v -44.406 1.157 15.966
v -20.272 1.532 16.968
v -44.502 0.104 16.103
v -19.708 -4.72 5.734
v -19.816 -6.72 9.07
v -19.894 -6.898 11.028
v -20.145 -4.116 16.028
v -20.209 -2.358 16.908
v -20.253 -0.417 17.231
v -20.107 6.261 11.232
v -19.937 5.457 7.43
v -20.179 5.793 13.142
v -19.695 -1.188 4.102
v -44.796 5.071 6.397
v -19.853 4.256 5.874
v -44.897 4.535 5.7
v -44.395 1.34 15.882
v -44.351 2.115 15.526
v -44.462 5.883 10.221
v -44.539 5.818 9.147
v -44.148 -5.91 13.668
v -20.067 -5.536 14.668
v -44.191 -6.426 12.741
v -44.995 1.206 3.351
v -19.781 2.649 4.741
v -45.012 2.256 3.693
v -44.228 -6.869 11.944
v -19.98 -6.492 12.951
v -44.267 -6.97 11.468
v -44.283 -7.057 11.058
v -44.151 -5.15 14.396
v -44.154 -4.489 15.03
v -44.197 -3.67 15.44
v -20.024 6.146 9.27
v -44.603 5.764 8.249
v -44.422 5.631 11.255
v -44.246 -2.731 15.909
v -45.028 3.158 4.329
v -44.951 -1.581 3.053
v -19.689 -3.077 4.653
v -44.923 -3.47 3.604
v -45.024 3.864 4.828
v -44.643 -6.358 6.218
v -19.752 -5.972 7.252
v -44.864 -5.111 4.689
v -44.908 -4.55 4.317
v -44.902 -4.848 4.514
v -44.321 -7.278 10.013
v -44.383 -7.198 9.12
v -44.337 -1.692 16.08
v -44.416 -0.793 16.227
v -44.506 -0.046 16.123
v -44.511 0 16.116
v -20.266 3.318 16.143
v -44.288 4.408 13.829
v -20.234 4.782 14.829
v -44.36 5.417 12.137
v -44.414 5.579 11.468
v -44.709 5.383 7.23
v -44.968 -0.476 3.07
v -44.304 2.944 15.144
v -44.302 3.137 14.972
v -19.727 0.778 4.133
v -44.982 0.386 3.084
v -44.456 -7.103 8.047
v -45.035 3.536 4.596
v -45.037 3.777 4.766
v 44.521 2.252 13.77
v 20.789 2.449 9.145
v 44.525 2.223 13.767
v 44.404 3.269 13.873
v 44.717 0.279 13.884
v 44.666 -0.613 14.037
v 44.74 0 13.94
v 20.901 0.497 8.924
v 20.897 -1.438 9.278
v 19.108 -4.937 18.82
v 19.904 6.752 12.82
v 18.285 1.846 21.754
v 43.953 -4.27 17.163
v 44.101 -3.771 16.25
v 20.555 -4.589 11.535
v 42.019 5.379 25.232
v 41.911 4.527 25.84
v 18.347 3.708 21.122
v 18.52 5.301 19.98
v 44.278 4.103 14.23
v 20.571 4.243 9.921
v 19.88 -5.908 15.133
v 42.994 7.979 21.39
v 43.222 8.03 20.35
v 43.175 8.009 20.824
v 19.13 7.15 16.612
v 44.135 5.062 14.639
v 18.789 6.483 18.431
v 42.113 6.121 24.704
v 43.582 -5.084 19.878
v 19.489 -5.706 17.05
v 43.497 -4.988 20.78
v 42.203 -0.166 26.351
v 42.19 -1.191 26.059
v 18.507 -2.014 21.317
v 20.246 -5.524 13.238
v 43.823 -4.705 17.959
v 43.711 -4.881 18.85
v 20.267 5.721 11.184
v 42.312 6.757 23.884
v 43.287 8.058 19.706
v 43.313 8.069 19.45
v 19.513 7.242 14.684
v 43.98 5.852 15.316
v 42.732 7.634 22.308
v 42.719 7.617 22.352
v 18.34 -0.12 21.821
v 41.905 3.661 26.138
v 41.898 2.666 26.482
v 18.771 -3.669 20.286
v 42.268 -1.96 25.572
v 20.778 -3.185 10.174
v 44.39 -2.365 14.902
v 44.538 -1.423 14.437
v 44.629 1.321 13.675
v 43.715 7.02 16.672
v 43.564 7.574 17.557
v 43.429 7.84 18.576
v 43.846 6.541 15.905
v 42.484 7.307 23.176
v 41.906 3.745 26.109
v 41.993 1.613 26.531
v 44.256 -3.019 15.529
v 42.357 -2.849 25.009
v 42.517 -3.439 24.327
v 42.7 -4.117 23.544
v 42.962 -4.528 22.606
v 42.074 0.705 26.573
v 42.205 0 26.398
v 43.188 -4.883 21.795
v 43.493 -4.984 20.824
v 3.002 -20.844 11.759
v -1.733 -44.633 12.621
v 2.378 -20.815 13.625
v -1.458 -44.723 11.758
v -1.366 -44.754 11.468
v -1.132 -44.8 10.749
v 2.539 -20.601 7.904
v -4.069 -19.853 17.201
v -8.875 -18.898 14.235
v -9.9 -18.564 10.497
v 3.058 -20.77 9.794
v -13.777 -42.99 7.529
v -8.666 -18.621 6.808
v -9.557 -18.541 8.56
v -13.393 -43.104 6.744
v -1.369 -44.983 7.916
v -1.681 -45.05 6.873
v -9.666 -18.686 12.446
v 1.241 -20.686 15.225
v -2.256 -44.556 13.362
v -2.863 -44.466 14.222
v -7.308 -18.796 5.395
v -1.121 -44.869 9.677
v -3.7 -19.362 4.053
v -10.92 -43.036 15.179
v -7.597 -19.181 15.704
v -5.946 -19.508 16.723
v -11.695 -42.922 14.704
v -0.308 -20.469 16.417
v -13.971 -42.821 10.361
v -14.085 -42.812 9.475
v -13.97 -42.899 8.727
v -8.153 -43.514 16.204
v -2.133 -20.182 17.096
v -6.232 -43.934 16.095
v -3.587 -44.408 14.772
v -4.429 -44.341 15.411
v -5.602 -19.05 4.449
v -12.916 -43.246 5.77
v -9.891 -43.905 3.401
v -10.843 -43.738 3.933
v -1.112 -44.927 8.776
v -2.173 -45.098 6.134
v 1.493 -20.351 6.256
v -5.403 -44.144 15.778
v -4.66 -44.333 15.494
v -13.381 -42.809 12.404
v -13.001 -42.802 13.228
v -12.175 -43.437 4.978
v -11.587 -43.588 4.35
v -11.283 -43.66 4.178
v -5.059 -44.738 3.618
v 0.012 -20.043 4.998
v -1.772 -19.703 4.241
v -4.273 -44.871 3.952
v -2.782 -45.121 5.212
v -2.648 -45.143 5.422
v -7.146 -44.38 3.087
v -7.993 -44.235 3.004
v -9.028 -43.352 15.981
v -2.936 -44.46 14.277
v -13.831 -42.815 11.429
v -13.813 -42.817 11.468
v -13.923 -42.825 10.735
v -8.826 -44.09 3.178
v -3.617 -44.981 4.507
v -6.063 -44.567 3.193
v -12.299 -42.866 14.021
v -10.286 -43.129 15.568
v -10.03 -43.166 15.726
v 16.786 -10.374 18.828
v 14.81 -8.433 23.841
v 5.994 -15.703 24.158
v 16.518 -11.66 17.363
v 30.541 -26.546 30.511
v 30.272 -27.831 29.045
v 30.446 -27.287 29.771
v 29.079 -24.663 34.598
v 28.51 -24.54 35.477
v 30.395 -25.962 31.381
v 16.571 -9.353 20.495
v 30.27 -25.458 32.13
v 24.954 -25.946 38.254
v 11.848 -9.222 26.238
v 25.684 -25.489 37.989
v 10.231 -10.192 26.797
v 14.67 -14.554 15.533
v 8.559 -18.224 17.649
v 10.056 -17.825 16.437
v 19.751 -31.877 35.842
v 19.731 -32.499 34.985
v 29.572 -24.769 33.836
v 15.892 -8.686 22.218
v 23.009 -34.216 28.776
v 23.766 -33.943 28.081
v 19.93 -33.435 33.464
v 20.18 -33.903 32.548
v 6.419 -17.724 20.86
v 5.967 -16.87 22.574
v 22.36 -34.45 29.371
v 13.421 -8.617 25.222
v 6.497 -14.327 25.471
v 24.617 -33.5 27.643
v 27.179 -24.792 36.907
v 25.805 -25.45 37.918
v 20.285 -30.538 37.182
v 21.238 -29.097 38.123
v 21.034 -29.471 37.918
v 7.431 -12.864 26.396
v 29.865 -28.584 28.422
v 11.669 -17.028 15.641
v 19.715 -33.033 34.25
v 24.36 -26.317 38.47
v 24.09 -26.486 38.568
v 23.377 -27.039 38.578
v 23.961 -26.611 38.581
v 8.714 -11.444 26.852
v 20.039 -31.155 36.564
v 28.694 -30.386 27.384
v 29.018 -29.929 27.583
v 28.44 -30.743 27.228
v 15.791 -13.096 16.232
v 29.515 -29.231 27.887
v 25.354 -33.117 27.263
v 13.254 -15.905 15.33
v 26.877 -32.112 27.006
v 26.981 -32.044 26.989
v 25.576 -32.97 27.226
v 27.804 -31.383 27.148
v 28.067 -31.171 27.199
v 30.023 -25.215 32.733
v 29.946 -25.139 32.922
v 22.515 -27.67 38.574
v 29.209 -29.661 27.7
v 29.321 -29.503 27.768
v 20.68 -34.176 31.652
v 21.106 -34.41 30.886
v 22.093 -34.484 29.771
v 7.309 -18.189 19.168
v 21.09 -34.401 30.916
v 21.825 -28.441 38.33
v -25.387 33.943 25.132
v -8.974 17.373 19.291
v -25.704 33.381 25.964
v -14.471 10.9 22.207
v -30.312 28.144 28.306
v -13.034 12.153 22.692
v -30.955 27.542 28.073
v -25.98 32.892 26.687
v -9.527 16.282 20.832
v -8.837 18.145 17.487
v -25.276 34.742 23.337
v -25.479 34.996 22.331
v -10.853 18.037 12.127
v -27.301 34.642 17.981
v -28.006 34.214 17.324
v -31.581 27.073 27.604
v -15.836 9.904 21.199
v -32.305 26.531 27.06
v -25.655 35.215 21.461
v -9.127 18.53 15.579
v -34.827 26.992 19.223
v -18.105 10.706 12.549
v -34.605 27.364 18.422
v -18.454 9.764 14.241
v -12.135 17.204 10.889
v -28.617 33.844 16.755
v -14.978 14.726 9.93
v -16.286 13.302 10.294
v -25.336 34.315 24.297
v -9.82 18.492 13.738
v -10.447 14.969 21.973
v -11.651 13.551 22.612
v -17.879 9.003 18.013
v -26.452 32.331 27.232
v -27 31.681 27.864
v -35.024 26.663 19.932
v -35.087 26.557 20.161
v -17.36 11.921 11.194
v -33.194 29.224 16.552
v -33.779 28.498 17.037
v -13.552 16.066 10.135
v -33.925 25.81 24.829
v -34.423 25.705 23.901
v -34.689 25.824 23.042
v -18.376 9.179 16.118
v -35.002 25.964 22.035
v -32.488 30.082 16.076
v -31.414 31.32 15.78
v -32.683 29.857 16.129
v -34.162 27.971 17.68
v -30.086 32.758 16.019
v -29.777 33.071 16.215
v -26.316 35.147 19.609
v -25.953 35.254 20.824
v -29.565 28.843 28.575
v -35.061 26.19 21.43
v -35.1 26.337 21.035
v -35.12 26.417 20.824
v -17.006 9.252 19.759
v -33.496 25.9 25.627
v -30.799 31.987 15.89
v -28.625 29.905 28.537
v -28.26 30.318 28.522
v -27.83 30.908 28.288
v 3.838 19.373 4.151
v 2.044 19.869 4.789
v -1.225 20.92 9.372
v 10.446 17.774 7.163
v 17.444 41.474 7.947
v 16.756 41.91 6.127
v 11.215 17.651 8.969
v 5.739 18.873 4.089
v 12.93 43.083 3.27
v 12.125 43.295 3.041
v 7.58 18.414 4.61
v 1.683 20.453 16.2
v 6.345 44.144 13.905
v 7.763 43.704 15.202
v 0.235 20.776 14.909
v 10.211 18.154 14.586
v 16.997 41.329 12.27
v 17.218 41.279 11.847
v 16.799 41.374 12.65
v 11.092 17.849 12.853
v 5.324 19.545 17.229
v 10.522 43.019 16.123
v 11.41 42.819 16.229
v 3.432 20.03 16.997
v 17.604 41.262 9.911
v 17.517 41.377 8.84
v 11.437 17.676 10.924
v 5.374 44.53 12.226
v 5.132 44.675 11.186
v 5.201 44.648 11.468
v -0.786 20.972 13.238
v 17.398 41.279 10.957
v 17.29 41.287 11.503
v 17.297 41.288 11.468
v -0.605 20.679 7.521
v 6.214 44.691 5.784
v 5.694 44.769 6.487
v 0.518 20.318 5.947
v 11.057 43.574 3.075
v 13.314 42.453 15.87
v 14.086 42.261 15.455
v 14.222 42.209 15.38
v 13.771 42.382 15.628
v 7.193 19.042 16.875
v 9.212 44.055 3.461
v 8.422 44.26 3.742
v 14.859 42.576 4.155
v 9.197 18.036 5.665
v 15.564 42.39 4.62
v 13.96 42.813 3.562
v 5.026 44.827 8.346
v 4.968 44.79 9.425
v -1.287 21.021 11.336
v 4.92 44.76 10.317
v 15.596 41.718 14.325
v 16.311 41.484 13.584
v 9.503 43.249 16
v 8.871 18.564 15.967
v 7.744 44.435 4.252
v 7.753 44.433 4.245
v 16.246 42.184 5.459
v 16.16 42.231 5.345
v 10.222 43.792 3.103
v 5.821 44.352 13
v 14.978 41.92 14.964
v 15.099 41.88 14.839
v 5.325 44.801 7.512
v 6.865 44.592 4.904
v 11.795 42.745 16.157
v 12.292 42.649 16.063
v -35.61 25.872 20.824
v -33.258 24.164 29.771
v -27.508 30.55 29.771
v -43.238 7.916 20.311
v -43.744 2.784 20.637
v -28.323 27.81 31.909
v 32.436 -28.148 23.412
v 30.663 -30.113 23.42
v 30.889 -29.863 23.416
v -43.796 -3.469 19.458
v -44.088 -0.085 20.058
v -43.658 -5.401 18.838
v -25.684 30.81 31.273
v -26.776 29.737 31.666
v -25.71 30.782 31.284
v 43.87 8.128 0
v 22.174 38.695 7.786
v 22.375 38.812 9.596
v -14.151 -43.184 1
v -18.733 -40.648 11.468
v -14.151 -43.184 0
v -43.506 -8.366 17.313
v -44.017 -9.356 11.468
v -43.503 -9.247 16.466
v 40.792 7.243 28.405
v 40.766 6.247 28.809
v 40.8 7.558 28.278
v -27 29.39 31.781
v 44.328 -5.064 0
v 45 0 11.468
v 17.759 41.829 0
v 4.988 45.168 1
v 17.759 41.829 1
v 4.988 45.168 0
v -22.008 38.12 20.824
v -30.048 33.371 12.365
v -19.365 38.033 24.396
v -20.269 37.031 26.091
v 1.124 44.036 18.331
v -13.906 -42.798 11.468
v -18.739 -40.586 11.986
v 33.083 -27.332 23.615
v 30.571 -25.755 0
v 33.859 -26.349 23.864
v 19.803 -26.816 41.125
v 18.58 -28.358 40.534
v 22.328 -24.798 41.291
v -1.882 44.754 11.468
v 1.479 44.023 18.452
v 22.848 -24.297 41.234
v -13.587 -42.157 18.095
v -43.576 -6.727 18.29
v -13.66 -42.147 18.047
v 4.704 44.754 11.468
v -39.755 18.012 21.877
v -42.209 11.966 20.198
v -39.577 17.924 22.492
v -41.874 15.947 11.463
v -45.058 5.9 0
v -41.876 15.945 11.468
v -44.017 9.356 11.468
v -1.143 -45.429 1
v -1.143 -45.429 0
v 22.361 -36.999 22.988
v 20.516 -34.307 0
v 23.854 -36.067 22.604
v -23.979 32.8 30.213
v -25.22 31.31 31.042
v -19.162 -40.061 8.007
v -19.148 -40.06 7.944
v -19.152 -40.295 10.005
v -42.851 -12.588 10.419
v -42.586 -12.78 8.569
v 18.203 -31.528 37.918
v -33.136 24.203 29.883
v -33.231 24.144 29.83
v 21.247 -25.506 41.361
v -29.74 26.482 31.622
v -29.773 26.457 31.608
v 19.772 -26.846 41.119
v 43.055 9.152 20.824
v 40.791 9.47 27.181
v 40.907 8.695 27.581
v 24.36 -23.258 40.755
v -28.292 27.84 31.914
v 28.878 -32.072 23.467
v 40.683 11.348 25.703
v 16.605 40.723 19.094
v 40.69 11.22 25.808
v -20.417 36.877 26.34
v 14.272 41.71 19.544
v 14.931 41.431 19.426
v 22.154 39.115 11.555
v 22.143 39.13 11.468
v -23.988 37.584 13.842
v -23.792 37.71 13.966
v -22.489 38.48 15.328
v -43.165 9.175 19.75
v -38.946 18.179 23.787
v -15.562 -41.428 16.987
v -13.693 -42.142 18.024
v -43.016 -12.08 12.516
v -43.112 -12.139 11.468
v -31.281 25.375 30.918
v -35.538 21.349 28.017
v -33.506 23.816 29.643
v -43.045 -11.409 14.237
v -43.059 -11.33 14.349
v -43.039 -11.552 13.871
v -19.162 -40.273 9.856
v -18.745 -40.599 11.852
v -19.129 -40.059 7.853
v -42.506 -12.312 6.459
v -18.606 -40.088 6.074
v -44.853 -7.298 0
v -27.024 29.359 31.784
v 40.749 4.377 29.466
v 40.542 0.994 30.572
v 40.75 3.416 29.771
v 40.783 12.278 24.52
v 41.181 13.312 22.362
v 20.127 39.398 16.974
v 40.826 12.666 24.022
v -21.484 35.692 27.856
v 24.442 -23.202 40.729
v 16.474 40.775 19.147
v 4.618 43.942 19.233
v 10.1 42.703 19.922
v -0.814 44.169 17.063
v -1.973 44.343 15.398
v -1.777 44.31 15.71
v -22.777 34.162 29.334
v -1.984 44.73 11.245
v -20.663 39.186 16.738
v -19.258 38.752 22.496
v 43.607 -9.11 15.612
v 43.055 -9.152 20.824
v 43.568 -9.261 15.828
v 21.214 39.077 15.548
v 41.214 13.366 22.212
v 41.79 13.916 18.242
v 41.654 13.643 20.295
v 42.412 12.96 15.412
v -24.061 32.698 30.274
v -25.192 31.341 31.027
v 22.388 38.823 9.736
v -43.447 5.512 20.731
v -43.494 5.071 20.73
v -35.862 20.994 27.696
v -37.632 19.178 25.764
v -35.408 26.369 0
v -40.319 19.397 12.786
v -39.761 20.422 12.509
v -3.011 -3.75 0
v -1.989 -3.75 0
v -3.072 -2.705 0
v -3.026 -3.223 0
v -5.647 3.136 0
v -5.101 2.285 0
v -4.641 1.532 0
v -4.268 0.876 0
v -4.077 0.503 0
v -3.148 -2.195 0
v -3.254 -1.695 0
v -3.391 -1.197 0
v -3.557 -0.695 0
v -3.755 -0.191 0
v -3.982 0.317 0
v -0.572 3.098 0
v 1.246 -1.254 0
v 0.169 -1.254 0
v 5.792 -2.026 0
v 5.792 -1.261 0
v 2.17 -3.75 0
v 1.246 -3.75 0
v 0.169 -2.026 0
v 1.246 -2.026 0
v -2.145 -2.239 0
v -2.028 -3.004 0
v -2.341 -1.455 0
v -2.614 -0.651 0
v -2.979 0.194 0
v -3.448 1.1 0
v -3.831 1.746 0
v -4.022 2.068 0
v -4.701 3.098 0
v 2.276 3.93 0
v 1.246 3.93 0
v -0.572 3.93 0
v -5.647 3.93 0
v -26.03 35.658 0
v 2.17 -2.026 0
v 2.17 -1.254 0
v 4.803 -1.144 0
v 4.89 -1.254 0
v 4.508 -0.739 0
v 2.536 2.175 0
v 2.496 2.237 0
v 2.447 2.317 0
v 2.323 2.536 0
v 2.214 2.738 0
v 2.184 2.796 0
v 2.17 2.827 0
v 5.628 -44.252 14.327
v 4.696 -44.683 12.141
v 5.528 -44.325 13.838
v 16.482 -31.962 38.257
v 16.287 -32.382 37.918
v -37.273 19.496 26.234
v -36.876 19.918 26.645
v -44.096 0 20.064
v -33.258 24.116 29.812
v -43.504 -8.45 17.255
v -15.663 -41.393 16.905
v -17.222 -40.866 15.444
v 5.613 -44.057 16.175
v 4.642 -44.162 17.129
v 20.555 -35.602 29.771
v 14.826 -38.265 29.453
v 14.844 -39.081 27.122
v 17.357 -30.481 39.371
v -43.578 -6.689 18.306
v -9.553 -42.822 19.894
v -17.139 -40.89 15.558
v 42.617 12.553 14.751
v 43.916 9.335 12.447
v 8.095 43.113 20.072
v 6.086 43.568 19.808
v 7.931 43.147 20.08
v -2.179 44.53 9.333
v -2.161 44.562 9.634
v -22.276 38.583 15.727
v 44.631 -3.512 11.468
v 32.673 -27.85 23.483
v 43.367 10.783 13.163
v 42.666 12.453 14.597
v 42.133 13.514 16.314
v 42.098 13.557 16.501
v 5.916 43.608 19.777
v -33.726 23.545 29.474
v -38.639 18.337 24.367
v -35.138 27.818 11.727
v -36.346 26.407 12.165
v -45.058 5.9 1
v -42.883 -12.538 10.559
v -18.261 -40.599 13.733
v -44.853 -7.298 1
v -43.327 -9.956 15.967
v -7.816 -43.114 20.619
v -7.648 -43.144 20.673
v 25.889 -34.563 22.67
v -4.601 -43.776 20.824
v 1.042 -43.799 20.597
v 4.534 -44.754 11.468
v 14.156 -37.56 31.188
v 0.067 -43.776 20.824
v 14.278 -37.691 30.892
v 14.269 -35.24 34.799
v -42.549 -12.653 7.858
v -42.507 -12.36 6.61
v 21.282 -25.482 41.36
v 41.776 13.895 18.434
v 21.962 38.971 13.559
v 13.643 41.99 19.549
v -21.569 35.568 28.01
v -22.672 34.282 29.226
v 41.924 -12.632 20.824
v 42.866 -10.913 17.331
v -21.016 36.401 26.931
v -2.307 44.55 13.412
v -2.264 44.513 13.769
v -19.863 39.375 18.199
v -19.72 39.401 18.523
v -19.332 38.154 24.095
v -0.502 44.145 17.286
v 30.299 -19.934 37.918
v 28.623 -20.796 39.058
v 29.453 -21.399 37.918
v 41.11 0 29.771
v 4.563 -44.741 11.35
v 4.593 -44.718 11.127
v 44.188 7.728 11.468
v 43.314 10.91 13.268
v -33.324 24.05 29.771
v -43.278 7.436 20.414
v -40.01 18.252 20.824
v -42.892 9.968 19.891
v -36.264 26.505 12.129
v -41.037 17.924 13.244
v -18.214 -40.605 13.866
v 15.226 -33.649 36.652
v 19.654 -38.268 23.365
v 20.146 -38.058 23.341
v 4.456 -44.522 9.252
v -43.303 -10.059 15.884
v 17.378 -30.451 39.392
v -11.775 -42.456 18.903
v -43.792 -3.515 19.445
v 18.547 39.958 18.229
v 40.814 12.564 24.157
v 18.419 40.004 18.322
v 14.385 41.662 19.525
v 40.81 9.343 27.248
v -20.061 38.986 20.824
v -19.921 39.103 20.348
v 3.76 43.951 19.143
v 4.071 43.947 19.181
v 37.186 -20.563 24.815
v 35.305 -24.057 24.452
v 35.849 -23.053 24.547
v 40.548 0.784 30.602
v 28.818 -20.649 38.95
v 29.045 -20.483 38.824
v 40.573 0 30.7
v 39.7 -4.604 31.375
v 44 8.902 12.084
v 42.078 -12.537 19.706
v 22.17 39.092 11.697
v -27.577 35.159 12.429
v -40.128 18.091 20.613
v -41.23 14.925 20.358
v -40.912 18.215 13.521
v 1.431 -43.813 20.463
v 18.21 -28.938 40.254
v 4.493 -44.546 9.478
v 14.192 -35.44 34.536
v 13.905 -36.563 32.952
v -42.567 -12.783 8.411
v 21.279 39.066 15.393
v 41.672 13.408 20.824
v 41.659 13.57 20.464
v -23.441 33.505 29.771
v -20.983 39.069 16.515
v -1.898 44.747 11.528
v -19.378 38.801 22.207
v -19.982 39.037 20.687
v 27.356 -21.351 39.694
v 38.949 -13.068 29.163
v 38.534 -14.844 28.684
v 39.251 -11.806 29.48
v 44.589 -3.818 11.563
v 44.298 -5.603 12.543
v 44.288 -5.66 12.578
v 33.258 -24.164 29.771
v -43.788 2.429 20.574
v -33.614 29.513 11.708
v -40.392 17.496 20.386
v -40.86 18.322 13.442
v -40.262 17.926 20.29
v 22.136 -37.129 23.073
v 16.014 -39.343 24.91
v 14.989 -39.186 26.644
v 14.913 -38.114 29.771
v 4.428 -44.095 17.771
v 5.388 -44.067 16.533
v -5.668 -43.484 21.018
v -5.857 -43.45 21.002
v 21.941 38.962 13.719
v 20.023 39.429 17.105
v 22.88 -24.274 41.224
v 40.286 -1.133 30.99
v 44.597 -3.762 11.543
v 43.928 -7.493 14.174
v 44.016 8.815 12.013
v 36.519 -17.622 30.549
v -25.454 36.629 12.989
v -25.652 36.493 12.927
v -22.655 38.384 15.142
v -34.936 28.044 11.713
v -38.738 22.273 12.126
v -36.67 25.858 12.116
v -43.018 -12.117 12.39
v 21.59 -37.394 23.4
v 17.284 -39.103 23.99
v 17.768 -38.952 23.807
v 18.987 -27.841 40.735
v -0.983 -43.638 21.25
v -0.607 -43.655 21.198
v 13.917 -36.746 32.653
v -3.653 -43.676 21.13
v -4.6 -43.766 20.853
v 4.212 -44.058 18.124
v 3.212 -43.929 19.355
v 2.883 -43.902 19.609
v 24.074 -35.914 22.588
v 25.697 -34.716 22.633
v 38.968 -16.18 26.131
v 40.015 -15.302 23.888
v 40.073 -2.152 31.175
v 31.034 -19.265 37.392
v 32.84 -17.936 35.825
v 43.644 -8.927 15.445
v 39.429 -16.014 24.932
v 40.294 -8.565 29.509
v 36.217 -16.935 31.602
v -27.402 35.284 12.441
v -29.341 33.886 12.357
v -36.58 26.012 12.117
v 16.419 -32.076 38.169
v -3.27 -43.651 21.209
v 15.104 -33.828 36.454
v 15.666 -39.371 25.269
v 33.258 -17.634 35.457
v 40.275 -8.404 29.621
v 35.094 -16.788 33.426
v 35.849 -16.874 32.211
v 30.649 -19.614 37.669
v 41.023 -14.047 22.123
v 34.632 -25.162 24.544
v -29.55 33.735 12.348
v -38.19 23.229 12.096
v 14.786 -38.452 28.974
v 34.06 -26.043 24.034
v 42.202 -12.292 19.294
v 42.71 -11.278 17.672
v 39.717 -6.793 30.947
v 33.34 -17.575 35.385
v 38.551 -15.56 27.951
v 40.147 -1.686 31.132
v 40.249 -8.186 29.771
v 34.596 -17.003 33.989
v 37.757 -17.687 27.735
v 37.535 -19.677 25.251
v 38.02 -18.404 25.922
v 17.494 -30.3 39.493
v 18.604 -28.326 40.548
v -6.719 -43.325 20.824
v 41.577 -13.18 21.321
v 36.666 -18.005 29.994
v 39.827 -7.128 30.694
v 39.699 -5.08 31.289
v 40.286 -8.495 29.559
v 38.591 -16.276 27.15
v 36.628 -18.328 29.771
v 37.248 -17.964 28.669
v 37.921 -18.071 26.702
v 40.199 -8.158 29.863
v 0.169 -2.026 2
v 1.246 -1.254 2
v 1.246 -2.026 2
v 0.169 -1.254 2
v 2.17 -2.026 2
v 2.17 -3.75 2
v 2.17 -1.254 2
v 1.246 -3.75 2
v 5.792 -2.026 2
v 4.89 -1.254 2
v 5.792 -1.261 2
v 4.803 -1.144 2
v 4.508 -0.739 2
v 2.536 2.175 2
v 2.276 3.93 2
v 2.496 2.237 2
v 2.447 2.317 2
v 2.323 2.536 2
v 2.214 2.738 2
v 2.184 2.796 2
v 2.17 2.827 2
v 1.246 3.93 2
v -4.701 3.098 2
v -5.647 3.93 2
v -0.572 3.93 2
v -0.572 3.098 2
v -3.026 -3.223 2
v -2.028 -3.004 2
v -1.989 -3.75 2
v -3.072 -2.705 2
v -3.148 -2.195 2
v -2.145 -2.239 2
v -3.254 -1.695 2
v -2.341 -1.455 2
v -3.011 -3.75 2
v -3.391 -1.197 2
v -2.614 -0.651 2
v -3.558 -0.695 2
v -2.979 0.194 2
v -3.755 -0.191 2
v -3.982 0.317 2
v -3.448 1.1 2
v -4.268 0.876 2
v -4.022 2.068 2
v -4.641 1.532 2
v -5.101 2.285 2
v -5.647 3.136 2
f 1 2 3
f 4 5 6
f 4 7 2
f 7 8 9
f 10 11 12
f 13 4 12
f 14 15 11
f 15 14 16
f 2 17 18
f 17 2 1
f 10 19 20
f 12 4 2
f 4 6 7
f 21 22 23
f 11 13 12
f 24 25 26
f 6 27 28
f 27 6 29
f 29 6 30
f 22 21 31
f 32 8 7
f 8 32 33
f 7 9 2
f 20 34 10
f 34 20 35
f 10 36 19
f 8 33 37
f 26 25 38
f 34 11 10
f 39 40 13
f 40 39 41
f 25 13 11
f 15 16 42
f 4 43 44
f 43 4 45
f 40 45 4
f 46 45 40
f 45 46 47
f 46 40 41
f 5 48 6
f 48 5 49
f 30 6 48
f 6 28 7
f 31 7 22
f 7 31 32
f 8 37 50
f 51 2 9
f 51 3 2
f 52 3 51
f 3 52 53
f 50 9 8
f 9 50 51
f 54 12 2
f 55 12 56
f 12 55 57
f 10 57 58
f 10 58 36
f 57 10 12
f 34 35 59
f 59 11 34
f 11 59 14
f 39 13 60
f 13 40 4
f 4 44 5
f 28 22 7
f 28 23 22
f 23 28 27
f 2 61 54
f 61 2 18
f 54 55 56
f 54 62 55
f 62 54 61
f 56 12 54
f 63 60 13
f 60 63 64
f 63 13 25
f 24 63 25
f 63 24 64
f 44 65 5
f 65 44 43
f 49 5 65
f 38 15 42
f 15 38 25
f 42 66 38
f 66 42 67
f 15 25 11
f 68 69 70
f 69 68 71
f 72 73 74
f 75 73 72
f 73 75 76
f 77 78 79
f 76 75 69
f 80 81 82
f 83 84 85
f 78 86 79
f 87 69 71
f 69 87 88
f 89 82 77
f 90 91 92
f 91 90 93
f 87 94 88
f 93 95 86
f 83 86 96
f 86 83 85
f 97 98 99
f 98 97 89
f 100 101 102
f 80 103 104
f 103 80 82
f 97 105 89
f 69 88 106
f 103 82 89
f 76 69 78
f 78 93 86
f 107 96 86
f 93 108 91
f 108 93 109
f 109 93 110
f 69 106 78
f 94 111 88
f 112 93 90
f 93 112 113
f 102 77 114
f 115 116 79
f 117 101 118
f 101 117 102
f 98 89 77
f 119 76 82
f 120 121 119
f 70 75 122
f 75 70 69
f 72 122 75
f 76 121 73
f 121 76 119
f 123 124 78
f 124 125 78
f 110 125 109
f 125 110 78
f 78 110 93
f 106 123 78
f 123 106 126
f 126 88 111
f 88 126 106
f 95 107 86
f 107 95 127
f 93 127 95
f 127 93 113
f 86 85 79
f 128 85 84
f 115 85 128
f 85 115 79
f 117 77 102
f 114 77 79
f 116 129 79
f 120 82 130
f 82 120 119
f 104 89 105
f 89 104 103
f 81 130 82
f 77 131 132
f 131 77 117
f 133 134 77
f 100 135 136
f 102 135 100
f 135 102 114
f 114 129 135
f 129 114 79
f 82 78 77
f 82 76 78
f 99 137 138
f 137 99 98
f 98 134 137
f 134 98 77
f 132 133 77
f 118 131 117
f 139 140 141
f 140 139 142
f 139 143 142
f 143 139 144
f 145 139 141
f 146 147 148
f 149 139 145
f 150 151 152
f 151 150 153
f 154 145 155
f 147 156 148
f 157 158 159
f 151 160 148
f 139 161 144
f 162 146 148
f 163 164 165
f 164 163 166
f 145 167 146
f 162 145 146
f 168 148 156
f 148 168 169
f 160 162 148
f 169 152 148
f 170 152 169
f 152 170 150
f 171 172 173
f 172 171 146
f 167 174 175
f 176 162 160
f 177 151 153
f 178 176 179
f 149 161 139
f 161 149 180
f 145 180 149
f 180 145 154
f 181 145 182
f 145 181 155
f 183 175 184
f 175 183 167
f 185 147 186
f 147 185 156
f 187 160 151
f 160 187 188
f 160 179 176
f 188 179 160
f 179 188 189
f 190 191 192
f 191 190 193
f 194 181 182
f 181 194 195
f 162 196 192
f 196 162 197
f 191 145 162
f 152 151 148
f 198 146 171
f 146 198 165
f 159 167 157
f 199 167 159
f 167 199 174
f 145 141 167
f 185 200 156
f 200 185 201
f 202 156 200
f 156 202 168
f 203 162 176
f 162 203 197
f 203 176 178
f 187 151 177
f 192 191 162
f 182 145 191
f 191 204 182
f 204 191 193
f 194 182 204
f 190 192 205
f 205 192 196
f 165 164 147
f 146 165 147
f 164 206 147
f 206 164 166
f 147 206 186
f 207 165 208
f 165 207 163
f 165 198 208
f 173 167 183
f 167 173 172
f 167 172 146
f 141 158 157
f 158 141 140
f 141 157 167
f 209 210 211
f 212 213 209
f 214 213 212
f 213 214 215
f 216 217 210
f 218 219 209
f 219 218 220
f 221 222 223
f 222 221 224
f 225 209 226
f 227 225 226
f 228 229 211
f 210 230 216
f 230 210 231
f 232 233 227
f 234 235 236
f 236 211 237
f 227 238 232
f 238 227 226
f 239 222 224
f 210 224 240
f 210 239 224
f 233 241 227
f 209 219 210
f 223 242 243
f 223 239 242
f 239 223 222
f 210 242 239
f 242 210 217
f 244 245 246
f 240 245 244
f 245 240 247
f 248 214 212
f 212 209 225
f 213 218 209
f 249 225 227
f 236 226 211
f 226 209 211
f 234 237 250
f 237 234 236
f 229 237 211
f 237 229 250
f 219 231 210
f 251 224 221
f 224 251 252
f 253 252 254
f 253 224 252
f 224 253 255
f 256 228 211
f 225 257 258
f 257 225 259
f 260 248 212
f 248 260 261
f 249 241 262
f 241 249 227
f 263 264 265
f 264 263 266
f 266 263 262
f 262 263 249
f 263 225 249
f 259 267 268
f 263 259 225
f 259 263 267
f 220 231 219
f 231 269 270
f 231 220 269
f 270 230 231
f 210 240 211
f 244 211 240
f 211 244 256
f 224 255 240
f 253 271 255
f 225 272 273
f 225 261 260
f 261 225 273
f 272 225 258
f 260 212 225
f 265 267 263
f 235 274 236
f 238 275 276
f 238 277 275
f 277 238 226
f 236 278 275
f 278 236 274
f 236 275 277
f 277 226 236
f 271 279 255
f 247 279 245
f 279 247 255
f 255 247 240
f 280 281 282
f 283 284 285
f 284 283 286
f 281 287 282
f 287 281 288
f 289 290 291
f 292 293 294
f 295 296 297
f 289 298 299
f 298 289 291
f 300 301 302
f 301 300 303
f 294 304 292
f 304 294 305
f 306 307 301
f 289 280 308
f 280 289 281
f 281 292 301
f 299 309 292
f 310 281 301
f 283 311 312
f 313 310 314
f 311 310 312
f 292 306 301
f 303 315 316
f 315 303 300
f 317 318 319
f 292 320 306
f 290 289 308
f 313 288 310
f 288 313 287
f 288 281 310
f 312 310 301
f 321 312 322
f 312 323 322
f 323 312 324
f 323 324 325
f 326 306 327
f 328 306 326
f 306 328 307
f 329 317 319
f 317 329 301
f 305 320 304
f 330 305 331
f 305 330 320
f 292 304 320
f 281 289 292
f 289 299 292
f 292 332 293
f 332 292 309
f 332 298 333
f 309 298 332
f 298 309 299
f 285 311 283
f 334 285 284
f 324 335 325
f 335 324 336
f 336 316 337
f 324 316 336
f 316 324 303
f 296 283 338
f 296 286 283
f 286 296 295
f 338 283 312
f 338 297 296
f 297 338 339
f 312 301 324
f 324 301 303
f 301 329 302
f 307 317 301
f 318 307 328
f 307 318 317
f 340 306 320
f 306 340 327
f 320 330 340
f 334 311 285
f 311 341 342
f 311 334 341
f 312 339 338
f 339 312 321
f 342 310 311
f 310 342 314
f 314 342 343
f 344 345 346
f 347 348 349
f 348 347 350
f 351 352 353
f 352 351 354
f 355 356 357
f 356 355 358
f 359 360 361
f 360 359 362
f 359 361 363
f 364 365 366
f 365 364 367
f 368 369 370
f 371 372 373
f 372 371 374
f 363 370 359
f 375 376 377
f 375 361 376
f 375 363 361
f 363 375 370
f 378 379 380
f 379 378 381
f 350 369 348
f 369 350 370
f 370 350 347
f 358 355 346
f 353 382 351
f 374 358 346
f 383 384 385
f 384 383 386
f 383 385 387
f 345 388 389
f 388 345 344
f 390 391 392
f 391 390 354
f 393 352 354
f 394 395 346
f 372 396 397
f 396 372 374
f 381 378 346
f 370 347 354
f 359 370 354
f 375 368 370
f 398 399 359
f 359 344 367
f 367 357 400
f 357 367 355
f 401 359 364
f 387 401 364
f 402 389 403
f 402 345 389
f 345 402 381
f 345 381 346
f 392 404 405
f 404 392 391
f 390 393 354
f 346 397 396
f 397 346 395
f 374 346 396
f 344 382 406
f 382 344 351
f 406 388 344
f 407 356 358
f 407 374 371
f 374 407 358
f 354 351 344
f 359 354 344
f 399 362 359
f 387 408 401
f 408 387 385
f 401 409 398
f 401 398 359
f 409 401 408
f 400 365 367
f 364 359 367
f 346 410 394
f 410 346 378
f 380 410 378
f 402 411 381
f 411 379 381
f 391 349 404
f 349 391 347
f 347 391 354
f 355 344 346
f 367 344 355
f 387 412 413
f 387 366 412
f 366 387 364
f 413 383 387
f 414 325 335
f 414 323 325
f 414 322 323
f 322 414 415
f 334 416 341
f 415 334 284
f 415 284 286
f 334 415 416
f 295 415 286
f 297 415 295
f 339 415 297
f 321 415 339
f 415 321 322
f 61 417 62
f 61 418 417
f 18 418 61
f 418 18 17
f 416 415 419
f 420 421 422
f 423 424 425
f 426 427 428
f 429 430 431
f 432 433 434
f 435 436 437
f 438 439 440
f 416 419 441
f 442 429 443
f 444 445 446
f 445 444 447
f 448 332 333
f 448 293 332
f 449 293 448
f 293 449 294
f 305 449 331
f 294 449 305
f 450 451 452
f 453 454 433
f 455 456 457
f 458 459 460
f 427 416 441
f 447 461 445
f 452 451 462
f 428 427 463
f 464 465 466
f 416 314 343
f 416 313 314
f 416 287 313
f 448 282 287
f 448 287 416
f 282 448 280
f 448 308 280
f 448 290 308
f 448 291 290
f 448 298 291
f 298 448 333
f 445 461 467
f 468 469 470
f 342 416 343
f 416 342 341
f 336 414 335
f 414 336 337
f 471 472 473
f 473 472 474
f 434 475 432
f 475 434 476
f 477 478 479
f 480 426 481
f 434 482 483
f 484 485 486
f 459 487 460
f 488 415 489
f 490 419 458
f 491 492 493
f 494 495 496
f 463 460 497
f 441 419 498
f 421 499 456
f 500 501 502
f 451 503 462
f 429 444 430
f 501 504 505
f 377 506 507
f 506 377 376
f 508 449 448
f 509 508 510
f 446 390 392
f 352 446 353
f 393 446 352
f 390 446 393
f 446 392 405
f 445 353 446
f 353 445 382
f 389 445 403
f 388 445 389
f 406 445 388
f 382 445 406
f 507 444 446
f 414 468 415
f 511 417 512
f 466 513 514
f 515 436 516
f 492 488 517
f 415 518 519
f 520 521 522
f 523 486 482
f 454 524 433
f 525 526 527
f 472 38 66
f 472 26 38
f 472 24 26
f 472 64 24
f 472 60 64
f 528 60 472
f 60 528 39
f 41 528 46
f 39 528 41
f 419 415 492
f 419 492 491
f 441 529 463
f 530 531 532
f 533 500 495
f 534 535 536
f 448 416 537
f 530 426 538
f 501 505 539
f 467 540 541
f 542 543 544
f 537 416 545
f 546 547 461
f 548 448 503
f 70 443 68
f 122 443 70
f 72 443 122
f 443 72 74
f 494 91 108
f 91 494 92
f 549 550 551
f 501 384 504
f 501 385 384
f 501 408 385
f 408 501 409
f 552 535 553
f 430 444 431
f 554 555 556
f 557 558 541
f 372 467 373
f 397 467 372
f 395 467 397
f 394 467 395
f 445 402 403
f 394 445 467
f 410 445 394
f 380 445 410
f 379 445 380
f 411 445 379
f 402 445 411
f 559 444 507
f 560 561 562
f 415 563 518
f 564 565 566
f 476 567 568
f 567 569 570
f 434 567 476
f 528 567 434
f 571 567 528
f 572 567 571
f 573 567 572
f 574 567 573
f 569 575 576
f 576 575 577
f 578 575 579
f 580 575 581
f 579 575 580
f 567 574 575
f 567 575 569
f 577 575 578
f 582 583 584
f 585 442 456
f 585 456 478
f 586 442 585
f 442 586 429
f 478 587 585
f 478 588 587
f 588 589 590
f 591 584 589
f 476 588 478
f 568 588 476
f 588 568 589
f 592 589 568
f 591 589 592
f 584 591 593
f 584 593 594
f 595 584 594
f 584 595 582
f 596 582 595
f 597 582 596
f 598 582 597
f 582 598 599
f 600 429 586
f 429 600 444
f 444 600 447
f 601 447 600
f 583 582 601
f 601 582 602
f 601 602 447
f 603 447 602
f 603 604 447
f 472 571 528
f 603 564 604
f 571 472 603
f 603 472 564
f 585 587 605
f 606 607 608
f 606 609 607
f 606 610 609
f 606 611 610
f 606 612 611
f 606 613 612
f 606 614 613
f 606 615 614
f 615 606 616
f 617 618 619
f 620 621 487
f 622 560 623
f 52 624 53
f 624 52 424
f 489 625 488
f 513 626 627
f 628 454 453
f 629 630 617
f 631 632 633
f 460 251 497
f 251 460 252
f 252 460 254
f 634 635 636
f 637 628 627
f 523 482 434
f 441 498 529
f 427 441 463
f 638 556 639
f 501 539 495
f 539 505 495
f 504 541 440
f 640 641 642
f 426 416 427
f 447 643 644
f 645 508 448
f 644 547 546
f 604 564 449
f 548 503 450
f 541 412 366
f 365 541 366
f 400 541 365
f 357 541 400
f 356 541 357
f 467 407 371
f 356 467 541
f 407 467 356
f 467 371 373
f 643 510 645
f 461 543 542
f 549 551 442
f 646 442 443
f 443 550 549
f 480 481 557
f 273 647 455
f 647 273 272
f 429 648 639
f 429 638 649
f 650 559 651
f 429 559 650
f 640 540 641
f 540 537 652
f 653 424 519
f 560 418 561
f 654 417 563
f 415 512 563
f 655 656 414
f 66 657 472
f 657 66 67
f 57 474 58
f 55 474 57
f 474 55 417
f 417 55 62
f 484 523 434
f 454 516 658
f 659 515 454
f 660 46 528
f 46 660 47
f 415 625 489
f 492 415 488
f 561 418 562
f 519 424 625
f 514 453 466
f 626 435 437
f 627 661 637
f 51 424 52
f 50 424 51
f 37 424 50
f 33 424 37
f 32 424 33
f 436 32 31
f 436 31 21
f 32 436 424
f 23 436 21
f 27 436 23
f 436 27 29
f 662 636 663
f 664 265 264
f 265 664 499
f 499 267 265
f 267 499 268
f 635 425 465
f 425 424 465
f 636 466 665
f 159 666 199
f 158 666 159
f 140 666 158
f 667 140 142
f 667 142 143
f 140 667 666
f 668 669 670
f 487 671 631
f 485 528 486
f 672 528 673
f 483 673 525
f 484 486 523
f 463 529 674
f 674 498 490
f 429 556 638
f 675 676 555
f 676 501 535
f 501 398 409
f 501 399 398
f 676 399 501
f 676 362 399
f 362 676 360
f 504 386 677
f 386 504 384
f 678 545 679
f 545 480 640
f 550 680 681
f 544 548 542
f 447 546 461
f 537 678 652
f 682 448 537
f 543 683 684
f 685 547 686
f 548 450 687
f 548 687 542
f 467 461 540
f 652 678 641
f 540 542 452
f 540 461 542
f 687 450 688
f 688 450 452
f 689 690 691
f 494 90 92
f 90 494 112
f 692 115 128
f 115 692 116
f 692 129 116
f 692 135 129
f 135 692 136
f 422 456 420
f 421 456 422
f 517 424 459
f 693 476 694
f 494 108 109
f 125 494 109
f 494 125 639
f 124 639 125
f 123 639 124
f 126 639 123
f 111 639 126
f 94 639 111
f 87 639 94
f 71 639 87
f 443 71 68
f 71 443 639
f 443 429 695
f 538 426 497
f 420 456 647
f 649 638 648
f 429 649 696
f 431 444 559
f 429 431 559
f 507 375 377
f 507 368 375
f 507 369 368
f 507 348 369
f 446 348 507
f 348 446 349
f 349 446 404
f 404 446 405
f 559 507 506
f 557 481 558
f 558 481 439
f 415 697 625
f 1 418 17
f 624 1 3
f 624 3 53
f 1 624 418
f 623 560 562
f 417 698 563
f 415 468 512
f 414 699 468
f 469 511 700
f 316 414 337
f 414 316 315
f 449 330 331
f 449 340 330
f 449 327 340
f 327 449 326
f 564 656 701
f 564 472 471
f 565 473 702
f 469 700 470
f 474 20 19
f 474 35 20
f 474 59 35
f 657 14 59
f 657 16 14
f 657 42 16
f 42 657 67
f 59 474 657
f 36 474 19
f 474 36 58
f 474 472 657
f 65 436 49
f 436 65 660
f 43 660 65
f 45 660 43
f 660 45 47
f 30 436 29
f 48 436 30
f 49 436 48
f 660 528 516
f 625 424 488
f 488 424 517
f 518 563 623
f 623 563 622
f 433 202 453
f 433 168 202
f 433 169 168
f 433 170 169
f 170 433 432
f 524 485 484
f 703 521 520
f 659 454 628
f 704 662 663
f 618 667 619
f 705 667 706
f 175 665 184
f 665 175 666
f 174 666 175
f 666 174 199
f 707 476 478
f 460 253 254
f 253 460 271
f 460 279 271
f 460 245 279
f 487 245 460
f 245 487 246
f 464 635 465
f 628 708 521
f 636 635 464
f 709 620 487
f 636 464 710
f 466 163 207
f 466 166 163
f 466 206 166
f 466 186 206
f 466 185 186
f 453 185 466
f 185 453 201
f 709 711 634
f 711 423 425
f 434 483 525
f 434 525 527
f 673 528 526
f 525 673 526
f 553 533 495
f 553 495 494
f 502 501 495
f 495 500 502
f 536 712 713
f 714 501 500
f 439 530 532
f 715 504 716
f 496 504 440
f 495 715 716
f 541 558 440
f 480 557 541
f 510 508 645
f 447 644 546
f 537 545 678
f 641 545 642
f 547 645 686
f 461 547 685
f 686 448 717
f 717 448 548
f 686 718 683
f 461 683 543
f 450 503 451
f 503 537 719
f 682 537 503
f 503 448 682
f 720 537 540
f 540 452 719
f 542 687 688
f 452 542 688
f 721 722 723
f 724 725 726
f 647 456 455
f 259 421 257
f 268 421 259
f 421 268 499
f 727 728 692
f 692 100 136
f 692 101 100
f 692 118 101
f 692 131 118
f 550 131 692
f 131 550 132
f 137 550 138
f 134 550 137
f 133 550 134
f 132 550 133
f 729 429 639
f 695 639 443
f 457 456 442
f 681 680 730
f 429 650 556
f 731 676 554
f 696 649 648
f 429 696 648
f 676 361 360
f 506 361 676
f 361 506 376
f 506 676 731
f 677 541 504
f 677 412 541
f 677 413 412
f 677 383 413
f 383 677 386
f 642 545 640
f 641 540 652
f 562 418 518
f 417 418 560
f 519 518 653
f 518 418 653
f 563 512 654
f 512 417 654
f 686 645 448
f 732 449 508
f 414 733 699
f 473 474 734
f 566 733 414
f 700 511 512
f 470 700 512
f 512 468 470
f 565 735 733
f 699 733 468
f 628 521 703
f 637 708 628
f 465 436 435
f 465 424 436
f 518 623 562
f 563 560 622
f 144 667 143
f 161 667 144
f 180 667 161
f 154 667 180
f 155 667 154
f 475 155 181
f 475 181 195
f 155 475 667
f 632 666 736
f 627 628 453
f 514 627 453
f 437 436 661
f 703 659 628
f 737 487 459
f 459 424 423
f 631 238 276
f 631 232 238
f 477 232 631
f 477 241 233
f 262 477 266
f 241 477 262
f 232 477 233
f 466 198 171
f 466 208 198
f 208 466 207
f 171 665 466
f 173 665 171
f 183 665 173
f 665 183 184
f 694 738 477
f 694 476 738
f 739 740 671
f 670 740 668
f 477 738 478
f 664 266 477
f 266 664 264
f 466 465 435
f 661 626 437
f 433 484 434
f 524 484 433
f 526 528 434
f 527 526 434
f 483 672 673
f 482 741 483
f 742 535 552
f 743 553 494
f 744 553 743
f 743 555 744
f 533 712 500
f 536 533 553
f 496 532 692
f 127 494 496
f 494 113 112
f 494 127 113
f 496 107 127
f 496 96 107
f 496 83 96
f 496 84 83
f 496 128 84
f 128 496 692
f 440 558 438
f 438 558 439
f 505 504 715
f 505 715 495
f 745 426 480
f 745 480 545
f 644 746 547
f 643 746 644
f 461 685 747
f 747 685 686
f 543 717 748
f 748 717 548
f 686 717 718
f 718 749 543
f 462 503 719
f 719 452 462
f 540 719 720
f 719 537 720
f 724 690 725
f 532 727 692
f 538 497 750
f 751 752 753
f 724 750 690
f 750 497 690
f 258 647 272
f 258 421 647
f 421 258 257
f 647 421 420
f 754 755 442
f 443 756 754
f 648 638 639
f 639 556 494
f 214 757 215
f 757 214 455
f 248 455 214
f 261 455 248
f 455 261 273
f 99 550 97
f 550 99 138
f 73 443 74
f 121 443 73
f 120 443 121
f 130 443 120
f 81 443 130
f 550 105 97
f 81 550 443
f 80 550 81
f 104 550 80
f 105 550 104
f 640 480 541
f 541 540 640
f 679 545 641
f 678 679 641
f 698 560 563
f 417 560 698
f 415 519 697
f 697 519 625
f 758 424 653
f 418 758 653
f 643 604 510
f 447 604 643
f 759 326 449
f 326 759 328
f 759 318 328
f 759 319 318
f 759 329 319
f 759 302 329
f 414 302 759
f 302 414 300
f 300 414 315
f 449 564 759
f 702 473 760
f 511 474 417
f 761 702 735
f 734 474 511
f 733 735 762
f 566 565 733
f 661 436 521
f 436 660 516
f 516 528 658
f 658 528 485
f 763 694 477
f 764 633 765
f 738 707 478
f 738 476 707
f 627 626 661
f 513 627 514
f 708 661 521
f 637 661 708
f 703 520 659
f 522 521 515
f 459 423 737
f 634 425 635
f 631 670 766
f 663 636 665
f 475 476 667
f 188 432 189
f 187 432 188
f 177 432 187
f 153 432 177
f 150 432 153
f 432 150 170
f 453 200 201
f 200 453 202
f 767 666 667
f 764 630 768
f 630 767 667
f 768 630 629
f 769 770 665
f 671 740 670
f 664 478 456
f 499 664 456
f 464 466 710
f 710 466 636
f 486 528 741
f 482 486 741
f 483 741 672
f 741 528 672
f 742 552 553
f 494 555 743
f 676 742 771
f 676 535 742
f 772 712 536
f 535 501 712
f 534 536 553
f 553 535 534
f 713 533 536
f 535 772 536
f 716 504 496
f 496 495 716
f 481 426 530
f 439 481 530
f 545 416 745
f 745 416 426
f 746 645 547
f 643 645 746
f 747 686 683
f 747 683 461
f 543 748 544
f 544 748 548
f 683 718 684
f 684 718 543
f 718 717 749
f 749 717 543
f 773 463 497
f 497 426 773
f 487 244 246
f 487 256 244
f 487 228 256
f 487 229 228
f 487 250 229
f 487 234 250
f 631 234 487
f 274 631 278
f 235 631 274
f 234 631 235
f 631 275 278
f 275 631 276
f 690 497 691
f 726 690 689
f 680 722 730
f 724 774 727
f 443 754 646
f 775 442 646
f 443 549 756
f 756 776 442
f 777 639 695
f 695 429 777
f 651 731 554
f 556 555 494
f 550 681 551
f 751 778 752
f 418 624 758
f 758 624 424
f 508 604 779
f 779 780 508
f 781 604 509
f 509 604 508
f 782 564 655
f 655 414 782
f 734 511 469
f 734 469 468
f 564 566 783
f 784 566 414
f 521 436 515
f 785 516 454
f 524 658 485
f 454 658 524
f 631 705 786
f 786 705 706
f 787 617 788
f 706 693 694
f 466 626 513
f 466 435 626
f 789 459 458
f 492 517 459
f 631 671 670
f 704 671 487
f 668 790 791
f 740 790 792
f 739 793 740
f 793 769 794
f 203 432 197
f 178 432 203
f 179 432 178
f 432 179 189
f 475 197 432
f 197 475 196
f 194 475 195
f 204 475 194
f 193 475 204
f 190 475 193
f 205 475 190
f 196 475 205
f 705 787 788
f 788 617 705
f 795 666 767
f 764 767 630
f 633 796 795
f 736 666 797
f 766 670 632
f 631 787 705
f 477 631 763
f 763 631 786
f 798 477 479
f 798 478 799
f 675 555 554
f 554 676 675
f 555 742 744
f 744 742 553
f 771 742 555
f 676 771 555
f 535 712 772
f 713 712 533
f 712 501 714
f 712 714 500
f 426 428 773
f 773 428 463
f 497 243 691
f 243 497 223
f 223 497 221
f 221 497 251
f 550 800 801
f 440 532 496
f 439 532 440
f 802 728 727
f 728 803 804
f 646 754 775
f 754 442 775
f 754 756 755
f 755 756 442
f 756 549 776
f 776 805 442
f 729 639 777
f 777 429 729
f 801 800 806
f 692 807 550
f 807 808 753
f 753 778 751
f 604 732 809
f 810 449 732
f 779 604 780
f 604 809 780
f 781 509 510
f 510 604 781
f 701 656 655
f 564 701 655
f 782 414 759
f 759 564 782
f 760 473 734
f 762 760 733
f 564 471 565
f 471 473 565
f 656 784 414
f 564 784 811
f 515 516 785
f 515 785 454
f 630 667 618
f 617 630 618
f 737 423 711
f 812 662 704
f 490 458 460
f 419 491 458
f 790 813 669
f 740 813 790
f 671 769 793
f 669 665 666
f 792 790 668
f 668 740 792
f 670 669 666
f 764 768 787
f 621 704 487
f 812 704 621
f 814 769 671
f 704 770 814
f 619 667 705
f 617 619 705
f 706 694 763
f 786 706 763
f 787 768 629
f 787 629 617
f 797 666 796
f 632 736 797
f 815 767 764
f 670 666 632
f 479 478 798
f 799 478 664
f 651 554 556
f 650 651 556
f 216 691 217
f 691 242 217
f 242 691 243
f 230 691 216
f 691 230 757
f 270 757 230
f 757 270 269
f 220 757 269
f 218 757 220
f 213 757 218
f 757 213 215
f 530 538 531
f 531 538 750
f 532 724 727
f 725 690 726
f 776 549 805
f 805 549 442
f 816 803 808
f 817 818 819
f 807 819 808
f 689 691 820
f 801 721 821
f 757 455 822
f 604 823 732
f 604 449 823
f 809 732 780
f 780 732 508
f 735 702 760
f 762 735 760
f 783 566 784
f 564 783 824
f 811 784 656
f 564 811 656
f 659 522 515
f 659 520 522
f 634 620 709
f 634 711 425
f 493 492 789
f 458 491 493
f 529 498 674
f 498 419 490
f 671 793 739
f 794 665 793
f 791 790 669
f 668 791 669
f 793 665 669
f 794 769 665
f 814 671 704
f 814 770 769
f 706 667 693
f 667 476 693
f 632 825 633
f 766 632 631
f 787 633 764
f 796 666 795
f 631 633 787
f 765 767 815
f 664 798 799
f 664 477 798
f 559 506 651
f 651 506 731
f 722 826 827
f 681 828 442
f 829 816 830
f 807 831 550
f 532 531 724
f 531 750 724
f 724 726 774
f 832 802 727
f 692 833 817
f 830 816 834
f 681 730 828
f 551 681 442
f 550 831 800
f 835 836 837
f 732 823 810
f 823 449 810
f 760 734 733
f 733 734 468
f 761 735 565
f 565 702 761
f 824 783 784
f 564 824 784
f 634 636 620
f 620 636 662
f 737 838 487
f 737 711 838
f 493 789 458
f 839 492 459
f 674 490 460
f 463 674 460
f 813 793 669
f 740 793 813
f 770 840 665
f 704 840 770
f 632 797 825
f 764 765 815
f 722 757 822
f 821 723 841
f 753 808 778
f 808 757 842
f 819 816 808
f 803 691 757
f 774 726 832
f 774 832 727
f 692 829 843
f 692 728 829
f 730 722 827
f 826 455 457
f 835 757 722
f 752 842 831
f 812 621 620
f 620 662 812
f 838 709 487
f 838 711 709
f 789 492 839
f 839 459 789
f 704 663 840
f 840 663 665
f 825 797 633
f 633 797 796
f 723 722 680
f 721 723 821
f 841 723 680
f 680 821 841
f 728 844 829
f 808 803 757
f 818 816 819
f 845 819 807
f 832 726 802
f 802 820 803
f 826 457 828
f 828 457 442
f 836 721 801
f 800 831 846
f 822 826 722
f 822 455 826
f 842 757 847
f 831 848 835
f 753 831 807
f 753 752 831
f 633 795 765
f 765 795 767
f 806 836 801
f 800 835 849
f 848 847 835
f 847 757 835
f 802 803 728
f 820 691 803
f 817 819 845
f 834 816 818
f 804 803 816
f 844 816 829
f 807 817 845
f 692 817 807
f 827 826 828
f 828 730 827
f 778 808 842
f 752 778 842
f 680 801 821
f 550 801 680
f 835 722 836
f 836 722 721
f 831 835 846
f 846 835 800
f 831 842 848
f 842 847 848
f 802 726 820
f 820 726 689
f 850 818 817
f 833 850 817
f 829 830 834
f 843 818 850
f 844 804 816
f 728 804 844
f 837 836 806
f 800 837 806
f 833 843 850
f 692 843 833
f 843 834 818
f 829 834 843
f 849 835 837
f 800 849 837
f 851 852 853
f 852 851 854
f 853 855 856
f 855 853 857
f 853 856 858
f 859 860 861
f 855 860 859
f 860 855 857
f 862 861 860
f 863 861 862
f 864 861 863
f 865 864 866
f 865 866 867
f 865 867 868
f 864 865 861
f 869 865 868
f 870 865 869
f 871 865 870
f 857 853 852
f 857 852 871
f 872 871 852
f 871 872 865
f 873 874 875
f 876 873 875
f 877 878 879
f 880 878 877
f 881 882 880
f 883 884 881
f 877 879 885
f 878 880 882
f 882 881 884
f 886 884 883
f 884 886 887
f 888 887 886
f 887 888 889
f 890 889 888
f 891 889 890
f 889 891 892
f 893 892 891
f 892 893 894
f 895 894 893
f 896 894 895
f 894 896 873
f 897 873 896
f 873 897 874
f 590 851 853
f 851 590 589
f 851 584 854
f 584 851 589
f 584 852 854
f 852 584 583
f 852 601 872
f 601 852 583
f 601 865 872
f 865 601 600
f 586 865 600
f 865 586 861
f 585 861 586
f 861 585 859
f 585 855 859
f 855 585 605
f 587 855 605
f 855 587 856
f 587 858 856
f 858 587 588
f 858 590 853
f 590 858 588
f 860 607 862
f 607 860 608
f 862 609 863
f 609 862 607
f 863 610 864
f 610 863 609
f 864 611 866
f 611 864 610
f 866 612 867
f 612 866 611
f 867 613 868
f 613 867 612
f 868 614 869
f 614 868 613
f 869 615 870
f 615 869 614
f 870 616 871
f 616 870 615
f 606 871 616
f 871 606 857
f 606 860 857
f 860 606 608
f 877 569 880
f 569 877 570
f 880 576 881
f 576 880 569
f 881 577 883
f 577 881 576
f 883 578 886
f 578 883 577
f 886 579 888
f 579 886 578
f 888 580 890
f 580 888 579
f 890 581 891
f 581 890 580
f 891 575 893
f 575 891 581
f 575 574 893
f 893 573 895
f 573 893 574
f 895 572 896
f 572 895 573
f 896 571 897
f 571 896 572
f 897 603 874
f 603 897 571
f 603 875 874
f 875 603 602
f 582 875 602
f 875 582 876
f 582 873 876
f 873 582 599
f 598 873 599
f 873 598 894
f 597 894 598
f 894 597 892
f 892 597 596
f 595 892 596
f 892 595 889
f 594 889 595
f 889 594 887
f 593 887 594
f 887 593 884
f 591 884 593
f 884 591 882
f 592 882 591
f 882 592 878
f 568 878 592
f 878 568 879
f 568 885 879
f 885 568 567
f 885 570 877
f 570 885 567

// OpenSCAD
difference() {
	difference() {
		difference() {
			hull() {
				union() {
					union() {
						rotate(a = -179.1095241591, v = [0, 0, 1]) {
							translate(v = [0, -6.6000000000, 0]) {
								cube(size = [44.9612277299, 13.2000000000, 1]);
							}
						}
						rotate(a = 1.9900783996, v = [0, 0, 1]) {
							translate(v = [0, -6.6000000000, 0]) {
								cube(size = [44.1252749944, 13.2000000000, 1]);
							}
						}
						rotate(a = -99.7927586423, v = [0, 0, 1]) {
							translate(v = [0, -6.6000000000, 0]) {
								cube(size = [44.9612277037, 13.2000000000, 1]);
							}
						}
						rotate(a = -49.6165955820, v = [0, 0, 1]) {
							translate(v = [0, -6.6000000000, 0]) {
								cube(size = [39.4251666458, 13.2000000000, 1]);
							}
						}
						rotate(a = 134.7265972752, v = [0, 0, 1]) {
							translate(v = [0, -6.6000000000, 0]) {
								cube(size = [43.6517665021, 13.2000000000, 1]);
							}
						}
						rotate(a = 75.3470815566, v = [0, 0, 1]) {
							translate(v = [0, -6.6000000000, 0]) {
								cube(size = [44.9612281474, 13.2000000000, 1]);
							}
						}
					}
					translate(v = [0, 0, 11.4676197083]) {
						intersection() {
							hull() {
								rotate(a = 92.3786678252, v = [0.0155276779, -0.9990176862, 0.0000009835]) {
									cylinder(h = 45, r = 9.6000000000);
								}
								rotate(a = 78.6844560536, v = [-0.0340512168, 0.9799700498, -0.0000009459]) {
									cylinder(h = 45, r = 9.6000000000);
								}
								rotate(a = 92.3786766546, v = [0.9845803087, -0.1699383687, -0.0000008146]) {
									cylinder(h = 45, r = 9.6000000000);
								}
								rotate(a = 61.1771958691, v = [0.6673599169, 0.5676336895, -0.0000012350]) {
									cylinder(h = 45, r = 9.6000000000);
								}
								rotate(a = 75.9393867397, v = [-0.6891863353, -0.6826407177, 0.0000013718]) {
									cylinder(h = 45, r = 9.6000000000);
								}
								rotate(a = 92.3785269093, v = [-0.9666424136, 0.2527451172, 0.0000007139]) {
									cylinder(h = 45, r = 9.6000000000);
								}
							}
							sphere(r = 45);
						}
					}
				}
			}
			translate(v = [0, 0, 11.4676197083]) {
				rotate(a = 92.3786678252, v = [0.0155276779, -0.9990176862, 0.0000009835]) {
					translate(v = [0, 0, 20]) {
						cylinder(h = 45, r = 6.6000000000);
					}
				}
				rotate(a = 78.6844560536, v = [-0.0340512168, 0.9799700498, -0.0000009459]) {
					translate(v = [0, 0, 20]) {
						cylinder(h = 45, r = 6.6000000000);
					}
				}
				rotate(a = 92.3786766546, v = [0.9845803087, -0.1699383687, -0.0000008146]) {
					translate(v = [0, 0, 20]) {
						cylinder(h = 45, r = 6.6000000000);
					}
				}
				rotate(a = 61.1771958691, v = [0.6673599169, 0.5676336895, -0.0000012350]) {
					translate(v = [0, 0, 20]) {
						cylinder(h = 45, r = 6.6000000000);
					}
				}
				rotate(a = 75.9393867397, v = [-0.6891863353, -0.6826407177, 0.0000013718]) {
					translate(v = [0, 0, 20]) {
						cylinder(h = 45, r = 6.6000000000);
					}
				}
				rotate(a = 92.3785269093, v = [-0.9666424136, 0.2527451172, 0.0000007139]) {
					translate(v = [0, 0, 20]) {
						cylinder(h = 45, r = 6.6000000000);
					}
				}
			}
		}
		translate(v = [-100, -100, -100]) {
			cube(size = [200, 200, 100]);
		}
	}
	translate(v = [0, 0, 2]) {
		rotate(a = 180, v = [0, 1, 0]) {
			linear_extrude(height = 3) {
				text(halign = "center", size = 8, text = "47", valign = "center");
			}
		}
	}
}
